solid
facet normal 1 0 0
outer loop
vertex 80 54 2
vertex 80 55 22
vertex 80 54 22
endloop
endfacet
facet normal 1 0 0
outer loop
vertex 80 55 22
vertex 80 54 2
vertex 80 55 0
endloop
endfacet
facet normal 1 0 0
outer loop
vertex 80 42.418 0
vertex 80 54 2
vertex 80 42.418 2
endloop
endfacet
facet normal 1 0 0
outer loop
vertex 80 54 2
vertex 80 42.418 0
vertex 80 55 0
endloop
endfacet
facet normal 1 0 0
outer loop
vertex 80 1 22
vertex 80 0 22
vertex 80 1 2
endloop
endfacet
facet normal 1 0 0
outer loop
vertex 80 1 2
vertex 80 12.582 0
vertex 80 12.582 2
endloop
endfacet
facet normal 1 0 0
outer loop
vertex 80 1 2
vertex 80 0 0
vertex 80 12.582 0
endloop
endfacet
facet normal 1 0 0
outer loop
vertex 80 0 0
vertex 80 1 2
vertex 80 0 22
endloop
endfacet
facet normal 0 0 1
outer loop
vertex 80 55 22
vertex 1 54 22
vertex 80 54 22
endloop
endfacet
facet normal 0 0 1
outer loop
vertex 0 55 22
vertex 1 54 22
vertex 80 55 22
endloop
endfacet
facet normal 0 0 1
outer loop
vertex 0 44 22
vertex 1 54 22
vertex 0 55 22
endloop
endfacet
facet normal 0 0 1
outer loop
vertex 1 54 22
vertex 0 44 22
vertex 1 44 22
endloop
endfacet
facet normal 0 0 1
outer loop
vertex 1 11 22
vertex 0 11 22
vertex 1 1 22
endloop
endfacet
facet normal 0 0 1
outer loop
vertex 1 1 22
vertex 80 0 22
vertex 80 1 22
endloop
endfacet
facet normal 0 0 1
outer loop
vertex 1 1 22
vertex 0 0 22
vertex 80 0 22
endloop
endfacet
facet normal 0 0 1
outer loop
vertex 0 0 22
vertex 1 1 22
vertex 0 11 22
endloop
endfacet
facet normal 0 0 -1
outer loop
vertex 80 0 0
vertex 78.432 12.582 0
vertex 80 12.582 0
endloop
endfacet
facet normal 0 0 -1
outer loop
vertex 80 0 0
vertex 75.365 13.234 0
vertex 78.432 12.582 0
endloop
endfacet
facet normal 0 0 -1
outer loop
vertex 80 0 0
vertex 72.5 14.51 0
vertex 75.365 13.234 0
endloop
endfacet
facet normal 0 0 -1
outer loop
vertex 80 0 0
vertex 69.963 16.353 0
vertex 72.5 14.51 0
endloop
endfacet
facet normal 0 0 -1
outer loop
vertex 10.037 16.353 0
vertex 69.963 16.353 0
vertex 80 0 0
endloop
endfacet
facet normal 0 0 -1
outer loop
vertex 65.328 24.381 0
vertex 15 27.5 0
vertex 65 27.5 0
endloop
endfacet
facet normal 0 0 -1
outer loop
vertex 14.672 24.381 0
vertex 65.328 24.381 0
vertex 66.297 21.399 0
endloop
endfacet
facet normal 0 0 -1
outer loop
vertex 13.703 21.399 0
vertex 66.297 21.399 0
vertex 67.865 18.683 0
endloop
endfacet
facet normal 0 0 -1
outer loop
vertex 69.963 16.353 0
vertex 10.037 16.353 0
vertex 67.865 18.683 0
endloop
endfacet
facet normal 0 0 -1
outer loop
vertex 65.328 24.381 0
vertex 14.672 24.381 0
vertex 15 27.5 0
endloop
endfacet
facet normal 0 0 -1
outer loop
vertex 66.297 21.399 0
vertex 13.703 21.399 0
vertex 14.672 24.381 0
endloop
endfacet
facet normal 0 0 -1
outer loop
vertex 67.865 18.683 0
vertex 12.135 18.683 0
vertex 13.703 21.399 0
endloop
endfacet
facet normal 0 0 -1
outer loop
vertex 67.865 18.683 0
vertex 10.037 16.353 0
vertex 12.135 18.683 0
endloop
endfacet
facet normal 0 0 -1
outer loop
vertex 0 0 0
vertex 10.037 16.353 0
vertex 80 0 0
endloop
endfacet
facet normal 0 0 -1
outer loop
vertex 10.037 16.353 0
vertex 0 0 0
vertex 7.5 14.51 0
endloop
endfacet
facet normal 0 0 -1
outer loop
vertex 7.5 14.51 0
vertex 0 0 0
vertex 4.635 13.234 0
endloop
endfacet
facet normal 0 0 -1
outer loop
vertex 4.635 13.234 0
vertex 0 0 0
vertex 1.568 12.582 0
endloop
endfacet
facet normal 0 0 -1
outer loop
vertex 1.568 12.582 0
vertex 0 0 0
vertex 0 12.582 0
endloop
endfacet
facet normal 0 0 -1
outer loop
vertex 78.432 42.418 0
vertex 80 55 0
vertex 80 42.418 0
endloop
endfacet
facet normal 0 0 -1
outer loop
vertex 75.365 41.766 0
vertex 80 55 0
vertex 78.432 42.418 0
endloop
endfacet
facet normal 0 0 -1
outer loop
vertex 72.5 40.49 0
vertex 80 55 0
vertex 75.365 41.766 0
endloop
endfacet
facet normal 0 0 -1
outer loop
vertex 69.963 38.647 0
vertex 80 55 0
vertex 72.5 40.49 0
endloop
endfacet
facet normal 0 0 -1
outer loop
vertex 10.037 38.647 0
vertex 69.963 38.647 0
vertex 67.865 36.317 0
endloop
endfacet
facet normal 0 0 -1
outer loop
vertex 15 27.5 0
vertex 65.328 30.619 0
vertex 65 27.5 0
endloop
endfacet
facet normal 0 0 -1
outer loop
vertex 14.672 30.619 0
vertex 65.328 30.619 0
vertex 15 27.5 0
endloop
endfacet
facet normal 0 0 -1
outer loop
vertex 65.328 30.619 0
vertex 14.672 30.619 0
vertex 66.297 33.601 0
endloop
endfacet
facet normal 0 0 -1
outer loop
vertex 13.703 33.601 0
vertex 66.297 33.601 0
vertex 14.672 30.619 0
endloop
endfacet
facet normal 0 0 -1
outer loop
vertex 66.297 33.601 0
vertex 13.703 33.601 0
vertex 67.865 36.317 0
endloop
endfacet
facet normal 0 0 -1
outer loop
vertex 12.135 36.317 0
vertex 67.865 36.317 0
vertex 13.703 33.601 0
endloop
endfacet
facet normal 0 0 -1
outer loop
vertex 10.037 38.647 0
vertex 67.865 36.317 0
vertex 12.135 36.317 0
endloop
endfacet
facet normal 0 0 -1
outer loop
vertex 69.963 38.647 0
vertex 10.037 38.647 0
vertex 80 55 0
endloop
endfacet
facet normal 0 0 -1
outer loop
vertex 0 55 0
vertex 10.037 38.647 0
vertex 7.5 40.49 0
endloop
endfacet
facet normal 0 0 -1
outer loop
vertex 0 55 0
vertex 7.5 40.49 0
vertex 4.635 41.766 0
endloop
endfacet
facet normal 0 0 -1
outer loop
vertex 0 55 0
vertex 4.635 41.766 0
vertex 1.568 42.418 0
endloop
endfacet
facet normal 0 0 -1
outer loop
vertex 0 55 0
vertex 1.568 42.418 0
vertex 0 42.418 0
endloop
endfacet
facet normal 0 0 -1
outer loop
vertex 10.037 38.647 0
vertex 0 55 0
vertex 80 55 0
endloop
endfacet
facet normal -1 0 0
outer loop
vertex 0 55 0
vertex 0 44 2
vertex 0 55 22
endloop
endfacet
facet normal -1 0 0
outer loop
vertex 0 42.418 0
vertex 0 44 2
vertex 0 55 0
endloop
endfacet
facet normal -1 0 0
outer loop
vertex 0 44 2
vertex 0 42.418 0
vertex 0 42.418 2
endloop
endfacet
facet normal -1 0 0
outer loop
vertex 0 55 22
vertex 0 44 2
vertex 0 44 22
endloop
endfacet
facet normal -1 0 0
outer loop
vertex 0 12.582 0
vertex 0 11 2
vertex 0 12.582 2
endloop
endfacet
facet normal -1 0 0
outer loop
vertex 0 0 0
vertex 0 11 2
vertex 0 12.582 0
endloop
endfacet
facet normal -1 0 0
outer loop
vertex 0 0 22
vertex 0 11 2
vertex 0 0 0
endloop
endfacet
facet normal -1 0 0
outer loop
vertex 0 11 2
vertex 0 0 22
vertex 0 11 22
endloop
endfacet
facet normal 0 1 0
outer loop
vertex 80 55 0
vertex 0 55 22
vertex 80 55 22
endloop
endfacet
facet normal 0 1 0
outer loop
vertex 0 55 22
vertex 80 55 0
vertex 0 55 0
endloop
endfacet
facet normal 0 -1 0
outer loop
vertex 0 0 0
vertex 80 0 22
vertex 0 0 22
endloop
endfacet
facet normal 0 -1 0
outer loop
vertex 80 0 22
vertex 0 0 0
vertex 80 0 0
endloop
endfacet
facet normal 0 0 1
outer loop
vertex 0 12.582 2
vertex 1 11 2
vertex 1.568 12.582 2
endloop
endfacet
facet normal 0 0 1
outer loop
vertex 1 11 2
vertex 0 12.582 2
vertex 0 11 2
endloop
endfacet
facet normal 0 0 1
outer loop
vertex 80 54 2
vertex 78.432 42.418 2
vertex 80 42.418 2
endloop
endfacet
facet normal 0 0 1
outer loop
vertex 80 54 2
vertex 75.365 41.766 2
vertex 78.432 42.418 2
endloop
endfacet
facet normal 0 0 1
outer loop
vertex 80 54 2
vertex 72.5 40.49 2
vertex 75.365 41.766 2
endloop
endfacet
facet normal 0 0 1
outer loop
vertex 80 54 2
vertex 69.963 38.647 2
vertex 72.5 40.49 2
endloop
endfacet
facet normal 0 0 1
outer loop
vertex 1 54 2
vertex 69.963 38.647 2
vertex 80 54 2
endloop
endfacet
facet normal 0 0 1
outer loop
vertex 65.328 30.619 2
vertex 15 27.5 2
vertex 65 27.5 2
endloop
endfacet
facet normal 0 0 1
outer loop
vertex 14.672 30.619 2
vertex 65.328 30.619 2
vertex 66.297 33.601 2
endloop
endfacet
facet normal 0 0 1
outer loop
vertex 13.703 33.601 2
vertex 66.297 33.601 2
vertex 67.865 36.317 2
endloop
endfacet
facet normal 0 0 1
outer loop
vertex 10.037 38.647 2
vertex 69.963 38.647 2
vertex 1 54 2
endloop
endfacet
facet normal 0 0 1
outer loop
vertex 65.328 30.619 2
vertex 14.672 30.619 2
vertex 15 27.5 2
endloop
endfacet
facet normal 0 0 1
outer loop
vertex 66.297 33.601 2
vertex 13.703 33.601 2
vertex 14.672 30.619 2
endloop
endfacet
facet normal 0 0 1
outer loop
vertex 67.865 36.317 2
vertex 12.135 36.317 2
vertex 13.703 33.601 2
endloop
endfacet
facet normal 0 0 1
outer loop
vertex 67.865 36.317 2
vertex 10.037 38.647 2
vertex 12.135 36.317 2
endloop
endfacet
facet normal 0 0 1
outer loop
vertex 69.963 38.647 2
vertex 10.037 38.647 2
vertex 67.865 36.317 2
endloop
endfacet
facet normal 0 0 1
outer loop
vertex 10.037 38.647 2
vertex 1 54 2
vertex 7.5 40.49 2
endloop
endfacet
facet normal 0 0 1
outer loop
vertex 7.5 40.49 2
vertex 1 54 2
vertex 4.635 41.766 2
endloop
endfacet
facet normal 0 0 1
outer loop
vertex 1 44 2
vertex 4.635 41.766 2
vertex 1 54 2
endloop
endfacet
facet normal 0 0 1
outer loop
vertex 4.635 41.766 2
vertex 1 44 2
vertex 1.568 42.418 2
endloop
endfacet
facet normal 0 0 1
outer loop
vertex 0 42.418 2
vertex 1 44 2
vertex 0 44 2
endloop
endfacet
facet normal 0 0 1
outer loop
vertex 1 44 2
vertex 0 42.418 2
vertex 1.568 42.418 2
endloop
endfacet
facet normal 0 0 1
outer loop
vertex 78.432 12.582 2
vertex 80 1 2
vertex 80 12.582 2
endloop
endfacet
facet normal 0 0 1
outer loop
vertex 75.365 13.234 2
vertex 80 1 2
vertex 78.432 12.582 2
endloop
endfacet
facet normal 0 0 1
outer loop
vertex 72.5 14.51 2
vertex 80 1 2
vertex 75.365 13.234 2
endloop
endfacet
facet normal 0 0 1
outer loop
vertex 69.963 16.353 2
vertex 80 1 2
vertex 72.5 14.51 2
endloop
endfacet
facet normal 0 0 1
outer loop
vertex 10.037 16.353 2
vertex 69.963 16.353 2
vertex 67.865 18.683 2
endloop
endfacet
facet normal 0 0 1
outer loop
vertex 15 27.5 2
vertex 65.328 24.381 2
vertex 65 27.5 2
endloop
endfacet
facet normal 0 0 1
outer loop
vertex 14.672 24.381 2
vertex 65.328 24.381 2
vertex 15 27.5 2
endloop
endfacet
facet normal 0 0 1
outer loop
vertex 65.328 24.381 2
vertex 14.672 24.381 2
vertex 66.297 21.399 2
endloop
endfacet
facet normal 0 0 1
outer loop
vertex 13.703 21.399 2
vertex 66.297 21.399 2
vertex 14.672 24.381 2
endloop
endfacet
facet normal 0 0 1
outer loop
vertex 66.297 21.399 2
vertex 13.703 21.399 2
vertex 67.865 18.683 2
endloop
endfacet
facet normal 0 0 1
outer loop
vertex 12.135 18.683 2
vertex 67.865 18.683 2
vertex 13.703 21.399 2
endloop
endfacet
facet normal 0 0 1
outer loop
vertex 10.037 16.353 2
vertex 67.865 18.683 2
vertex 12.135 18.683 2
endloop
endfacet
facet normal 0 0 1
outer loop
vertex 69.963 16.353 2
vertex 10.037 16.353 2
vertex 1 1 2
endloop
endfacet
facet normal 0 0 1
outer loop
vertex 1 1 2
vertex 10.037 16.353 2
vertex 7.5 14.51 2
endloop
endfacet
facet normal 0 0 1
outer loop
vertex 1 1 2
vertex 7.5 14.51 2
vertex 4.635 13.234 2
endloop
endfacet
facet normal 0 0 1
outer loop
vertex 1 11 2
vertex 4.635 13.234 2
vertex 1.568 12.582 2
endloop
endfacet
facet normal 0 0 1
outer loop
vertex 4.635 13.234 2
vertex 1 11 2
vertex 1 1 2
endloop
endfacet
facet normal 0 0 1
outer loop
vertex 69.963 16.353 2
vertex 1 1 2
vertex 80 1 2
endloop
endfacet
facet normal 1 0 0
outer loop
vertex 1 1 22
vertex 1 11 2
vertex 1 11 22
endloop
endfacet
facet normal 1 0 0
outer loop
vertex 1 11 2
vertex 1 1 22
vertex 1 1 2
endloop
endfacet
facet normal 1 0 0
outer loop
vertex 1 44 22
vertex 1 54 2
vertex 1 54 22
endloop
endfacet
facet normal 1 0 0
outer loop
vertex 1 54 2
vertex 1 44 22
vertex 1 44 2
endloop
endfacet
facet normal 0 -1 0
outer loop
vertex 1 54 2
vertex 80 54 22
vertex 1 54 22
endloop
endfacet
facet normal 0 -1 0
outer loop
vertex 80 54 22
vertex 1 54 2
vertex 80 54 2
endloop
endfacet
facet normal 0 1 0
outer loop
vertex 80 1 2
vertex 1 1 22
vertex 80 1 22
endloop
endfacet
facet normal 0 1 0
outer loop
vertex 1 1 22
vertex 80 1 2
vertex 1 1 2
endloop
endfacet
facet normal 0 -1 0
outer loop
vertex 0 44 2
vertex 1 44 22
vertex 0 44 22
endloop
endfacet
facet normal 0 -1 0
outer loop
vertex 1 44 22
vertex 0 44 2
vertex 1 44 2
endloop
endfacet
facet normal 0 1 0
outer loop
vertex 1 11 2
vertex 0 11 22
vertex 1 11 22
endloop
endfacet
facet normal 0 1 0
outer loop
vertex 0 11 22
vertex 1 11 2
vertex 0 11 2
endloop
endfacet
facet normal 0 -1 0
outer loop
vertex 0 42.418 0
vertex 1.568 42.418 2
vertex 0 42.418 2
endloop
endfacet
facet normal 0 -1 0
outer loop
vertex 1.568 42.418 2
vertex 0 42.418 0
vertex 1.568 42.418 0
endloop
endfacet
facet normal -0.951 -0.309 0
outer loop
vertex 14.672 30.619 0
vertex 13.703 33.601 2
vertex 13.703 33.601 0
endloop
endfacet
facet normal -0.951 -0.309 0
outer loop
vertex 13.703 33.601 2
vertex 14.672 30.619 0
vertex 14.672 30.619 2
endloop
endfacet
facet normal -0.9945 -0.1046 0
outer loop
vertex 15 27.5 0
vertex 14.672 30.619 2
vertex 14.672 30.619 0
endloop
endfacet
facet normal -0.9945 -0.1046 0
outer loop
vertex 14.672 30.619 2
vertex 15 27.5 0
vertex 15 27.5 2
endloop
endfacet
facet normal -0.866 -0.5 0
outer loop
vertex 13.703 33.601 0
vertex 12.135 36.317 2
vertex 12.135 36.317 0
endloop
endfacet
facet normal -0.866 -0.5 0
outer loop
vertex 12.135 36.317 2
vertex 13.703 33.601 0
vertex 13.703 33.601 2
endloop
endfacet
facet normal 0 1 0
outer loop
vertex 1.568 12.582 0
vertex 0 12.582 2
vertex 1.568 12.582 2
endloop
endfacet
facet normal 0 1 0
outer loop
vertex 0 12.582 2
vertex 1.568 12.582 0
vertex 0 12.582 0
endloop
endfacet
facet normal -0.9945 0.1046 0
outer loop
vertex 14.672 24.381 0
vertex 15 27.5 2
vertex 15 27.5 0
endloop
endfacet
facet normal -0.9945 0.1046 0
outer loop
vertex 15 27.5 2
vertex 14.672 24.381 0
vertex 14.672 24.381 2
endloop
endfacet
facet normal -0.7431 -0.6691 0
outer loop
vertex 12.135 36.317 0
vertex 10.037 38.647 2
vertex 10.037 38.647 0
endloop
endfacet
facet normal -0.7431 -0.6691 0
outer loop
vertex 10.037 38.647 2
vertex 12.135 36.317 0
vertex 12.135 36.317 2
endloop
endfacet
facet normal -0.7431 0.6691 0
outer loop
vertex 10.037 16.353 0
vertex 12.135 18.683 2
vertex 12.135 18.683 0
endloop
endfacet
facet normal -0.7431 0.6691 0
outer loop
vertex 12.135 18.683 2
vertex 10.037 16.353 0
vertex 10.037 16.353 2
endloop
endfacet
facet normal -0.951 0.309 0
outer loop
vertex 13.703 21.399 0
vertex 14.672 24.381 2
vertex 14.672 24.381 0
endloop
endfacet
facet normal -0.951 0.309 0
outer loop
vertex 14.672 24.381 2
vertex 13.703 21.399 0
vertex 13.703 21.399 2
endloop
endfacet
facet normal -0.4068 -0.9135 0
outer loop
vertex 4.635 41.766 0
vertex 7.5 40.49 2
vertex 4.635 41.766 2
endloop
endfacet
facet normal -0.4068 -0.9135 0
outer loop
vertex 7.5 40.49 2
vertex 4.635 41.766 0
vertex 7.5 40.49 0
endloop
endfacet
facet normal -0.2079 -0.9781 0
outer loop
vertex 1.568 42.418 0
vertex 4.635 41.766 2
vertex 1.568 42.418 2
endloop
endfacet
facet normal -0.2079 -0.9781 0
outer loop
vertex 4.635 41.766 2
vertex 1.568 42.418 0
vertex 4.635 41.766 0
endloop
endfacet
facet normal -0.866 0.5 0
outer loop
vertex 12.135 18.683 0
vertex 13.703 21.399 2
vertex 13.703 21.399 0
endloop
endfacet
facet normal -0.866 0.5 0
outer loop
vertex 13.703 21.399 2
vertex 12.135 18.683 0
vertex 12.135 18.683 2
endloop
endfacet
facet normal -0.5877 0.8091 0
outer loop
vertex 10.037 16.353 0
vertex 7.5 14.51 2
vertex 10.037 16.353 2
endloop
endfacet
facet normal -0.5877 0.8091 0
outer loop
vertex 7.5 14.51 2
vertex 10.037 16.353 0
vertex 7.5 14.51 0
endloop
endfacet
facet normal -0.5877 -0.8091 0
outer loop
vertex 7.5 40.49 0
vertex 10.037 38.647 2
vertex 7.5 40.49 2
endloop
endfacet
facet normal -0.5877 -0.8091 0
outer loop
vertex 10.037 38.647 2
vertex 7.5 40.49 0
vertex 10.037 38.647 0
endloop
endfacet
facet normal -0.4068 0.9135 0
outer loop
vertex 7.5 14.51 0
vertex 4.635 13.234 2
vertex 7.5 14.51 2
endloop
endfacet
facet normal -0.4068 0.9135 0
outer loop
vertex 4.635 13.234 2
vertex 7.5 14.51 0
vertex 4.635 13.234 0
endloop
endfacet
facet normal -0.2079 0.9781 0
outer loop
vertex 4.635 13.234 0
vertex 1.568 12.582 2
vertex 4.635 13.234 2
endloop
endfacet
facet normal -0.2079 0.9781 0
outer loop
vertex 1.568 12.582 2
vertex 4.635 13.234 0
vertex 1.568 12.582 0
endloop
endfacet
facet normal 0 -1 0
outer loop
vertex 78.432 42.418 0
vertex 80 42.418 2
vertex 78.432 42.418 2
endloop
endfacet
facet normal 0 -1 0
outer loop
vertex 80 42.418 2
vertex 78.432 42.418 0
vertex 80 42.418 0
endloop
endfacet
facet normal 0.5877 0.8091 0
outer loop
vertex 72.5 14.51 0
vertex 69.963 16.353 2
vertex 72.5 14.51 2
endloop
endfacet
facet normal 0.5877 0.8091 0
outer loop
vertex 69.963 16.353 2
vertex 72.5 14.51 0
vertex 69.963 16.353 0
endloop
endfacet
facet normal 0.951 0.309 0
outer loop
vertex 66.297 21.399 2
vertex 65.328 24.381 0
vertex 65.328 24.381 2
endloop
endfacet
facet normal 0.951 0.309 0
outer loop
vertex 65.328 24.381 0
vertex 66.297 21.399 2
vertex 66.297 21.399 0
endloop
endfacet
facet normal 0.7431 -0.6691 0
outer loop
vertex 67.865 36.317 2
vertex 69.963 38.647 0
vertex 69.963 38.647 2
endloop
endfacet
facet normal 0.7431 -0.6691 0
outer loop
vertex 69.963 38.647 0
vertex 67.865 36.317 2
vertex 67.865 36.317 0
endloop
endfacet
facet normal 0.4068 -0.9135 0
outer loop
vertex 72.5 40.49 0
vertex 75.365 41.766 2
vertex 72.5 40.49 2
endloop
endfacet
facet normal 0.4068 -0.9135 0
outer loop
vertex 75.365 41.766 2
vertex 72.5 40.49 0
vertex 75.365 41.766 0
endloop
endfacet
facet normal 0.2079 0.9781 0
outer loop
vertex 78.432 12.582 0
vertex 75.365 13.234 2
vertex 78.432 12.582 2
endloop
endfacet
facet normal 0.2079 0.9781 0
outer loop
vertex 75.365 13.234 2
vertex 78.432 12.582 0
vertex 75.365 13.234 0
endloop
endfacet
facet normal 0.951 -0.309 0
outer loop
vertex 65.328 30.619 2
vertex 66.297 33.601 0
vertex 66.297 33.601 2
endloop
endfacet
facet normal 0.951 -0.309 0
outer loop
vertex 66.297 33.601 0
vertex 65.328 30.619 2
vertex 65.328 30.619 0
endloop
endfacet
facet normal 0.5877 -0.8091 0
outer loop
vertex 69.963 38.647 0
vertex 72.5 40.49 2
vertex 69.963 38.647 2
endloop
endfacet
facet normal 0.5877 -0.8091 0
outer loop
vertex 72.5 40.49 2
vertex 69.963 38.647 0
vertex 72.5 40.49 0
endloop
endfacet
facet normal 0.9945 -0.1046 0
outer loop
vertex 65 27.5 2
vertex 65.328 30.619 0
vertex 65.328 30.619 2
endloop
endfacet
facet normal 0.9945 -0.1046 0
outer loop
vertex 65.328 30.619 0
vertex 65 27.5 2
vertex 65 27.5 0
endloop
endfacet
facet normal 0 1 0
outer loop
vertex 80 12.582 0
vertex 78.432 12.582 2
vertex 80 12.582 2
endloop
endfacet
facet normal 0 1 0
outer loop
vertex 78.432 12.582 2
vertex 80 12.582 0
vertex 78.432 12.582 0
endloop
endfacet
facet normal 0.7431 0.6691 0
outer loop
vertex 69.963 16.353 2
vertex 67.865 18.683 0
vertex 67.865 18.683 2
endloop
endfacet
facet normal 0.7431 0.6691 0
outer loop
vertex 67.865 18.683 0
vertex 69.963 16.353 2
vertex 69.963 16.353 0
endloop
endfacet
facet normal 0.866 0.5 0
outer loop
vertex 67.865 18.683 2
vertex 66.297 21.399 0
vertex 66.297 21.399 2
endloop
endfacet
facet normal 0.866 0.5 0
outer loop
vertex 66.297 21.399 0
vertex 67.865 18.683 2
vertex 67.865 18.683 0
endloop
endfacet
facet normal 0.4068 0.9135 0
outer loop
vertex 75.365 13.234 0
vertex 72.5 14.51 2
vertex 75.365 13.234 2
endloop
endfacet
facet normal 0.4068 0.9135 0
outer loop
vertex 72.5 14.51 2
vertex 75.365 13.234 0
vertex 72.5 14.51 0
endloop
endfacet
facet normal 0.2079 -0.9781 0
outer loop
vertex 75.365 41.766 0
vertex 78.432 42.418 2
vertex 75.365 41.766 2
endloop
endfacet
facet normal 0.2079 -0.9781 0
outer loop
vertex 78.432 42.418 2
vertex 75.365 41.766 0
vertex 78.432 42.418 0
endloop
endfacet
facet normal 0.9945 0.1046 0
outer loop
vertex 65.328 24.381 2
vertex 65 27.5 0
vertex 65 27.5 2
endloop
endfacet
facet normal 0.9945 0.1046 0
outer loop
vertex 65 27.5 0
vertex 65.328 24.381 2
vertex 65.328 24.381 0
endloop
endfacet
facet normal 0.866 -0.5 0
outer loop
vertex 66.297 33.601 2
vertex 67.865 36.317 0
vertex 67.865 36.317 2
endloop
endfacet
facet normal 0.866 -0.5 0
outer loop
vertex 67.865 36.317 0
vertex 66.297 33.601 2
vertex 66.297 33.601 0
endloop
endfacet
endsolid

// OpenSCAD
CARD = [
	78,
	53,
	20
];

FLOOR = 2;
WALL = 1;

HOLDER = 10;

FINGER_RAD = 15;
FINGER_SCALE = 1;

DIM = [
	CARD.x+2*WALL,
	CARD.y+2*WALL,
	CARD.z+FLOOR
];


difference(){
	
	cube([ CARD.x+2*WALL , CARD.y+2*WALL , CARD.z+FLOOR	]);
	
	// CARD
	translate([ WALL , WALL , FLOOR ]) cube([ DIM.x , CARD.y , CARD.z+0.1 ]);
	// WALL OPENING
	translate([ -0.1 , WALL+HOLDER , FLOOR ]) cube([ DIM.x+0.2 , CARD.y-2*HOLDER , DIM.z ]);
	
	// FINGER 
	translate([ 0 , 0.5*DIM.y , -0.1 ]) scale([ 1 , FINGER_SCALE , 1 ]) cylinder( h=FLOOR+0.2 , r=FINGER_RAD );
	translate([ DIM.x , 0.5*DIM.y , -0.1 ]) scale([ 1 , FINGER_SCALE , 1 ]) cylinder( h=FLOOR+0.2 , r=FINGER_RAD );
}
